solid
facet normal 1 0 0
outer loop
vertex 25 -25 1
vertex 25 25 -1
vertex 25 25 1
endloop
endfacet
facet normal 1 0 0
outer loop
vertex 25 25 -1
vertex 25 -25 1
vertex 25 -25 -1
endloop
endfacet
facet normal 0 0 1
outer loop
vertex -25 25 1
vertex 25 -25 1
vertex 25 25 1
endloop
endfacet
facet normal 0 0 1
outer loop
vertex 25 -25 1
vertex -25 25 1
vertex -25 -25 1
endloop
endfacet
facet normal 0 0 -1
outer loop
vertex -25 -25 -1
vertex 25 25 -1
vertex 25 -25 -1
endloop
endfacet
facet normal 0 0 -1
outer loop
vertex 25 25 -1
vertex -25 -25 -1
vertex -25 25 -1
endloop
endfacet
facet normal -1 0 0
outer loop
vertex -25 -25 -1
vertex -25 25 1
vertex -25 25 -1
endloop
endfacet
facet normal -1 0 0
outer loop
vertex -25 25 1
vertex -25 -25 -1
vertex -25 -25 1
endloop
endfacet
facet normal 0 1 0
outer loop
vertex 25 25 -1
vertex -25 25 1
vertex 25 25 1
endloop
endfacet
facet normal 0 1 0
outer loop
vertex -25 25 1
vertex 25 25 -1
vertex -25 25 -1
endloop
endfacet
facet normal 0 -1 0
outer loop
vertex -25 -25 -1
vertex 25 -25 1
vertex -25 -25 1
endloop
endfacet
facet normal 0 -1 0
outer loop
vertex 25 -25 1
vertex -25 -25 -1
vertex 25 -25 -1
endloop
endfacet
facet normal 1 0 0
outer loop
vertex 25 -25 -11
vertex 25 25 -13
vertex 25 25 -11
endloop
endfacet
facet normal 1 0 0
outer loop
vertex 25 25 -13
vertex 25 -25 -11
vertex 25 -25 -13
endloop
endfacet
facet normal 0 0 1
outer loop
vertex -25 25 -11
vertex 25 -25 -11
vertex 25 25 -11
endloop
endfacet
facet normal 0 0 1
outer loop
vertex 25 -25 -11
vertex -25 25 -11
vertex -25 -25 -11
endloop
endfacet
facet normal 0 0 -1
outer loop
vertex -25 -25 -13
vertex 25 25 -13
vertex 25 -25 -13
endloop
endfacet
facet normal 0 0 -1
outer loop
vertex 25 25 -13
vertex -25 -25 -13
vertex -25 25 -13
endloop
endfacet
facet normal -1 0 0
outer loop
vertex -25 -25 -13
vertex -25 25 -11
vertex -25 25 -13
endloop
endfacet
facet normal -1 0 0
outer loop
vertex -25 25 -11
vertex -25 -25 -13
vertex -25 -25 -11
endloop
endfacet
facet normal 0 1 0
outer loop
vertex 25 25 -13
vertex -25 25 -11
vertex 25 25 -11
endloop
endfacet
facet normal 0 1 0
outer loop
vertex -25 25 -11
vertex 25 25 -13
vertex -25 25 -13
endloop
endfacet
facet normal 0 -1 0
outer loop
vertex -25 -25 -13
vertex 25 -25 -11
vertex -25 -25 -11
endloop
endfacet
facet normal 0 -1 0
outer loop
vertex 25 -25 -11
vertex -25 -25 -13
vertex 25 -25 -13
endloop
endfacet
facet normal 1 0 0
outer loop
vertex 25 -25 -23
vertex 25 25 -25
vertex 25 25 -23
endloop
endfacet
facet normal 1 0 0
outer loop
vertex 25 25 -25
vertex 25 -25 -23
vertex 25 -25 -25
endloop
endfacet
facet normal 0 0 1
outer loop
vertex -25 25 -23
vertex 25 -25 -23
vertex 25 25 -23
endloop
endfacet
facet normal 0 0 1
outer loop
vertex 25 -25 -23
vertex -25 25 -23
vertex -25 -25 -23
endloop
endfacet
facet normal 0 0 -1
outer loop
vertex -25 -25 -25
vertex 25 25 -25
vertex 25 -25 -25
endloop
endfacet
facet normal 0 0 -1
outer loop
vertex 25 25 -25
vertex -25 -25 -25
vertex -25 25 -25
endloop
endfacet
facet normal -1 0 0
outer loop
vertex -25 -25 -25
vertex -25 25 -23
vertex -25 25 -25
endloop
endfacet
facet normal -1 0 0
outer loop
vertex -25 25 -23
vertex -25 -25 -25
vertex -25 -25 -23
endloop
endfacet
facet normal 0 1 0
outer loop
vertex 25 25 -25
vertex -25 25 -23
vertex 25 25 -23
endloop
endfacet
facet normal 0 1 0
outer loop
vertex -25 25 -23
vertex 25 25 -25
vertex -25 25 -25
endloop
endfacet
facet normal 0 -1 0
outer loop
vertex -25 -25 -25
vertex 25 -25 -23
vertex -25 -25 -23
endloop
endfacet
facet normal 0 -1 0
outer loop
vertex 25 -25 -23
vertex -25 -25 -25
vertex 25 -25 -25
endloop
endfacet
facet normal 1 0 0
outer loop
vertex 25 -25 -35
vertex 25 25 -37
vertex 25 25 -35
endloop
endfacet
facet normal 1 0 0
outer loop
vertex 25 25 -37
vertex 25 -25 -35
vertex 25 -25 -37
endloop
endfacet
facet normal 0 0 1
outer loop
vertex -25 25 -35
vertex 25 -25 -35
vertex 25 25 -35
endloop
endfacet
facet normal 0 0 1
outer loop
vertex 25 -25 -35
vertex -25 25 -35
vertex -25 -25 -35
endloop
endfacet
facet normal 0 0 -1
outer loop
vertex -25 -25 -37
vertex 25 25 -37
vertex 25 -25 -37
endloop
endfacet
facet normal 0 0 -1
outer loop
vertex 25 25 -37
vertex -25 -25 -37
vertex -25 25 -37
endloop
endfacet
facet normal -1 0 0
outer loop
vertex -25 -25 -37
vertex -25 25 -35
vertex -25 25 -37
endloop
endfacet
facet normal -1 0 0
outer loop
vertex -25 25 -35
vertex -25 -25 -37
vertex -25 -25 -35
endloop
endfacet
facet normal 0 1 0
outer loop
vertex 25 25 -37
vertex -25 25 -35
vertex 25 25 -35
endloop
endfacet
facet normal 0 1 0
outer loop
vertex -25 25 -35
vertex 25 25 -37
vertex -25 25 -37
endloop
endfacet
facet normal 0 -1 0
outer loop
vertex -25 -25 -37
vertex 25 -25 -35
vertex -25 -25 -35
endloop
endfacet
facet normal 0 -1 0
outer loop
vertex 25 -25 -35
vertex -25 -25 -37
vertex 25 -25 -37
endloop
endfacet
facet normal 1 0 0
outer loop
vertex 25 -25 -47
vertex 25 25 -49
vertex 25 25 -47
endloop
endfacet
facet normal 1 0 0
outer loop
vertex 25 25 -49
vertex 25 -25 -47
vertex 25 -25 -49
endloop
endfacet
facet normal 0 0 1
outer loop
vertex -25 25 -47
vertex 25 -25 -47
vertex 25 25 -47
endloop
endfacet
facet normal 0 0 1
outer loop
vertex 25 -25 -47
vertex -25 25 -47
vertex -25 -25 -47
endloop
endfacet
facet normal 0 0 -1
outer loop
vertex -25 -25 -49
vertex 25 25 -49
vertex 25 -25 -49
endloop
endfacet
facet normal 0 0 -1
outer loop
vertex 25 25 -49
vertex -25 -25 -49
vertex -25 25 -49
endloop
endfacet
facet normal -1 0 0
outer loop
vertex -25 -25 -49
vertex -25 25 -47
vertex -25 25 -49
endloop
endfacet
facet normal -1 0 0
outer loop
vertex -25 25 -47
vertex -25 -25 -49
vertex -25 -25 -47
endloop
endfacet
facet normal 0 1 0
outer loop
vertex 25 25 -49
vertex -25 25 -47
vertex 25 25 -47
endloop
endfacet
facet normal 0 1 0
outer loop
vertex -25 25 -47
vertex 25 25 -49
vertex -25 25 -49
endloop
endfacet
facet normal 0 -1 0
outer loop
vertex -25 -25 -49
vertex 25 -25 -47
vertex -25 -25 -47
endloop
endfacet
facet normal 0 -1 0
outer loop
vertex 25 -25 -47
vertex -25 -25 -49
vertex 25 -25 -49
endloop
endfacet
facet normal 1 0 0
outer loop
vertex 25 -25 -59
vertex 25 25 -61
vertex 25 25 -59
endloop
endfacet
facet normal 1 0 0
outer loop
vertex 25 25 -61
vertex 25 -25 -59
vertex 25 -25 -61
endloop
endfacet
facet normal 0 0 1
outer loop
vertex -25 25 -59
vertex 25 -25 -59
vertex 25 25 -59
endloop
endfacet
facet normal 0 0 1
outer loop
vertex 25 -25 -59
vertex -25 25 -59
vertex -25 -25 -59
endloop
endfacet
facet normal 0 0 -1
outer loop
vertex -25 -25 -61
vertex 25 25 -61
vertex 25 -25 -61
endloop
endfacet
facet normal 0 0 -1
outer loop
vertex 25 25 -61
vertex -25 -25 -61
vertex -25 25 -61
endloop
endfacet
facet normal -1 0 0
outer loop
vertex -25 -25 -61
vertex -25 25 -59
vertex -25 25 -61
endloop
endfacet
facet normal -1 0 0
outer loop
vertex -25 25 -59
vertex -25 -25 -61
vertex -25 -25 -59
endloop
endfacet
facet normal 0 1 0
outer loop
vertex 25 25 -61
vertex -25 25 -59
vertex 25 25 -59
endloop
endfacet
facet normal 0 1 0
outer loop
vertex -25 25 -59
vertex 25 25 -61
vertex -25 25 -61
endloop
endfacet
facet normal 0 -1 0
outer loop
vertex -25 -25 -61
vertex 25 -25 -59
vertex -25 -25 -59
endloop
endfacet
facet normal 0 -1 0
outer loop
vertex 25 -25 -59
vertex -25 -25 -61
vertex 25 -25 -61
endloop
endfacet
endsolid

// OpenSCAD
// Parameters for the flat plate
plate_length = 50;  // Length of the flat plate
plate_width = 50;   // Width of the flat plate
plate_thickness = 2; // Thickness of the flat plate
plate_spacing = 10;  // Spacing between each plate

// Function to create a flat plate
module flat_plate() {
    cube([plate_length, plate_width, plate_thickness], center = true);
}

// Individual flat plates positioned separately
module separated_flat_plates() {
    for (i = [0:5]) {
        translate([0, 0, -i * (plate_thickness + plate_spacing)])
            flat_plate();
    }
}

// Render the separated flat plates
separated_flat_plates();
